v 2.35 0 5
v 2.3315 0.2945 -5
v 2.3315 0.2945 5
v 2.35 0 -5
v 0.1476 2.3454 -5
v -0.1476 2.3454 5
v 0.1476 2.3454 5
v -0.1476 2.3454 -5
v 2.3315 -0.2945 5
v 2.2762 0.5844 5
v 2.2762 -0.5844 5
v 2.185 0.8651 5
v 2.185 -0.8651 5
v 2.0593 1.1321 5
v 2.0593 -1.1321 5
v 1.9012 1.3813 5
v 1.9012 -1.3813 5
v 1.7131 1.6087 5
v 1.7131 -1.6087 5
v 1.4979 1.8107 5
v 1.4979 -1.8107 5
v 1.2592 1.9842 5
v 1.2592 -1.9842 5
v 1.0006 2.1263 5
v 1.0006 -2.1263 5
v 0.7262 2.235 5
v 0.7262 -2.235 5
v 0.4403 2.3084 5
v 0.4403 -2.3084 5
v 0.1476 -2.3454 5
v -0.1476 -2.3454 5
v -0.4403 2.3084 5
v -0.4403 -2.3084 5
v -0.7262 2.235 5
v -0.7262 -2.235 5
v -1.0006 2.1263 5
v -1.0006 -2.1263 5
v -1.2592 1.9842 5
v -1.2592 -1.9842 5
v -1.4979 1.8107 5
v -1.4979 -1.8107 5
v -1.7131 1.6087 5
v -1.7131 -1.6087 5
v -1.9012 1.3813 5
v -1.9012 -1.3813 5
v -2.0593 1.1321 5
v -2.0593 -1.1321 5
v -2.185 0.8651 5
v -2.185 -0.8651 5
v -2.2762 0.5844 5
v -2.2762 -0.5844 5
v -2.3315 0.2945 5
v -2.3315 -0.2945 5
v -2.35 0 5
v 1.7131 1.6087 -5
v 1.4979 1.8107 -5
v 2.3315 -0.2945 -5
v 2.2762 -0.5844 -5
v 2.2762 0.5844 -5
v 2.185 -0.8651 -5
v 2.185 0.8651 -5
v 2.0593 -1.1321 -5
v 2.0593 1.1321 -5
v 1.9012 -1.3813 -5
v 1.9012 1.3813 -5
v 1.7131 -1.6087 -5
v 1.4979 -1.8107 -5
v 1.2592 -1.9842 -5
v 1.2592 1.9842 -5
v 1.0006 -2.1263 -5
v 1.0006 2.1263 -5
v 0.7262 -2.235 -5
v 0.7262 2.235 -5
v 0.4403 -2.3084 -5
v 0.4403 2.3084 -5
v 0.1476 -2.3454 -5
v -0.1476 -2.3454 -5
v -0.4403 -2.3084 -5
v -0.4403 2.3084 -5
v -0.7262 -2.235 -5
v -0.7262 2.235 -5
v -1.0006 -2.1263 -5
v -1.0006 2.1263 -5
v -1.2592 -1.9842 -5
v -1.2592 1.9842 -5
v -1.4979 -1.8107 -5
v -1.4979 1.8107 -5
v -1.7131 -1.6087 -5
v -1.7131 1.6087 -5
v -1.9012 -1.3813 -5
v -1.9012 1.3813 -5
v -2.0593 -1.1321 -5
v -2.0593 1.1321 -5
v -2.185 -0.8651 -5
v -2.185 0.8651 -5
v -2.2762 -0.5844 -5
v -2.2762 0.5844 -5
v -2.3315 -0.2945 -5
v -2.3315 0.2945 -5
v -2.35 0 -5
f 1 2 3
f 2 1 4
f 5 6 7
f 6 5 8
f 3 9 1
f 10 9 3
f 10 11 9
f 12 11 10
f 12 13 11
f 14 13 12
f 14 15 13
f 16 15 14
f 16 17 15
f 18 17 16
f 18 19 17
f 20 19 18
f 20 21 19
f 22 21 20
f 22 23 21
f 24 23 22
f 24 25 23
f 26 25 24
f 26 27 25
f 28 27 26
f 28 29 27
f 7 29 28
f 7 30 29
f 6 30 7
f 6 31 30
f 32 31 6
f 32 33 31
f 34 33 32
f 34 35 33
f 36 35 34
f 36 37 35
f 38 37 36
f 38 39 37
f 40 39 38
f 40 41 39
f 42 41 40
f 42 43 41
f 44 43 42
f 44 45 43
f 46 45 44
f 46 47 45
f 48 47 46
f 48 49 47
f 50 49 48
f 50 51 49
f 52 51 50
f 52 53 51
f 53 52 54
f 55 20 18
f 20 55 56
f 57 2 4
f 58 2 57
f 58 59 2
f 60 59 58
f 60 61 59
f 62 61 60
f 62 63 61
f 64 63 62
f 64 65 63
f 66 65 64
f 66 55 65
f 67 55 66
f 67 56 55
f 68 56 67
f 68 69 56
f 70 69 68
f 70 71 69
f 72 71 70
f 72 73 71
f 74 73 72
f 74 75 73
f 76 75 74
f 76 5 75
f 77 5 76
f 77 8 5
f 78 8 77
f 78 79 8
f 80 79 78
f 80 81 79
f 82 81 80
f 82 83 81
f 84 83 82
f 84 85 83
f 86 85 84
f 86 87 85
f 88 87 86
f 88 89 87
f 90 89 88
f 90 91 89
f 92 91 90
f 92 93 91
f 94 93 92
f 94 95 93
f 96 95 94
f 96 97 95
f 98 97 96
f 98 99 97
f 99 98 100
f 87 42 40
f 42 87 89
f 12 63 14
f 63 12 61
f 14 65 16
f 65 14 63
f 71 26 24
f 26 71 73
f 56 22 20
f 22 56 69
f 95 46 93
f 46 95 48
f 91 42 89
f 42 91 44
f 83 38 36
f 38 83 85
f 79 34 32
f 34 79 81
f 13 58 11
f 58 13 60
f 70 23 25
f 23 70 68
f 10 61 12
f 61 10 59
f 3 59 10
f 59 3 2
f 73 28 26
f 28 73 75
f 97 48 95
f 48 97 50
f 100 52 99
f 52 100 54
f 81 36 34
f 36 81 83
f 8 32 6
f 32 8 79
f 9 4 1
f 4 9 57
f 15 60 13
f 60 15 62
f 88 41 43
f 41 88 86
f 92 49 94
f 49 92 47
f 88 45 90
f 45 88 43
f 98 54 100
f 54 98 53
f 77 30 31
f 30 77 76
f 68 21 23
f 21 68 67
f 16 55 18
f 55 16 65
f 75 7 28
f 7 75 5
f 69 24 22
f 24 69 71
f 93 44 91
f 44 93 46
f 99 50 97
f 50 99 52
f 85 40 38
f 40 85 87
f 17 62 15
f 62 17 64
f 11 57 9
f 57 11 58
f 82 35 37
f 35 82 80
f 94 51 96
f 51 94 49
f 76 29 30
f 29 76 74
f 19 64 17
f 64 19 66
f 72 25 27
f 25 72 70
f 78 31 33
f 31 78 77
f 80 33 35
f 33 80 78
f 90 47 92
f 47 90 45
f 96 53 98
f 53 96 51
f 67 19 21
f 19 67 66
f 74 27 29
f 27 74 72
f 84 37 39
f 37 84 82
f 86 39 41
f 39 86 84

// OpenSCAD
$fn = 50;


difference() {
	union() {
		translate(v = [0, 0, -5.0000000000]) {
			cylinder(h = 10, r = 2.3500000000);
		}
	}
	union() {
		translate(v = [0, 0, -100.0000000000]) {
			cylinder(h = 200, r = 0);
		}
	}
}
